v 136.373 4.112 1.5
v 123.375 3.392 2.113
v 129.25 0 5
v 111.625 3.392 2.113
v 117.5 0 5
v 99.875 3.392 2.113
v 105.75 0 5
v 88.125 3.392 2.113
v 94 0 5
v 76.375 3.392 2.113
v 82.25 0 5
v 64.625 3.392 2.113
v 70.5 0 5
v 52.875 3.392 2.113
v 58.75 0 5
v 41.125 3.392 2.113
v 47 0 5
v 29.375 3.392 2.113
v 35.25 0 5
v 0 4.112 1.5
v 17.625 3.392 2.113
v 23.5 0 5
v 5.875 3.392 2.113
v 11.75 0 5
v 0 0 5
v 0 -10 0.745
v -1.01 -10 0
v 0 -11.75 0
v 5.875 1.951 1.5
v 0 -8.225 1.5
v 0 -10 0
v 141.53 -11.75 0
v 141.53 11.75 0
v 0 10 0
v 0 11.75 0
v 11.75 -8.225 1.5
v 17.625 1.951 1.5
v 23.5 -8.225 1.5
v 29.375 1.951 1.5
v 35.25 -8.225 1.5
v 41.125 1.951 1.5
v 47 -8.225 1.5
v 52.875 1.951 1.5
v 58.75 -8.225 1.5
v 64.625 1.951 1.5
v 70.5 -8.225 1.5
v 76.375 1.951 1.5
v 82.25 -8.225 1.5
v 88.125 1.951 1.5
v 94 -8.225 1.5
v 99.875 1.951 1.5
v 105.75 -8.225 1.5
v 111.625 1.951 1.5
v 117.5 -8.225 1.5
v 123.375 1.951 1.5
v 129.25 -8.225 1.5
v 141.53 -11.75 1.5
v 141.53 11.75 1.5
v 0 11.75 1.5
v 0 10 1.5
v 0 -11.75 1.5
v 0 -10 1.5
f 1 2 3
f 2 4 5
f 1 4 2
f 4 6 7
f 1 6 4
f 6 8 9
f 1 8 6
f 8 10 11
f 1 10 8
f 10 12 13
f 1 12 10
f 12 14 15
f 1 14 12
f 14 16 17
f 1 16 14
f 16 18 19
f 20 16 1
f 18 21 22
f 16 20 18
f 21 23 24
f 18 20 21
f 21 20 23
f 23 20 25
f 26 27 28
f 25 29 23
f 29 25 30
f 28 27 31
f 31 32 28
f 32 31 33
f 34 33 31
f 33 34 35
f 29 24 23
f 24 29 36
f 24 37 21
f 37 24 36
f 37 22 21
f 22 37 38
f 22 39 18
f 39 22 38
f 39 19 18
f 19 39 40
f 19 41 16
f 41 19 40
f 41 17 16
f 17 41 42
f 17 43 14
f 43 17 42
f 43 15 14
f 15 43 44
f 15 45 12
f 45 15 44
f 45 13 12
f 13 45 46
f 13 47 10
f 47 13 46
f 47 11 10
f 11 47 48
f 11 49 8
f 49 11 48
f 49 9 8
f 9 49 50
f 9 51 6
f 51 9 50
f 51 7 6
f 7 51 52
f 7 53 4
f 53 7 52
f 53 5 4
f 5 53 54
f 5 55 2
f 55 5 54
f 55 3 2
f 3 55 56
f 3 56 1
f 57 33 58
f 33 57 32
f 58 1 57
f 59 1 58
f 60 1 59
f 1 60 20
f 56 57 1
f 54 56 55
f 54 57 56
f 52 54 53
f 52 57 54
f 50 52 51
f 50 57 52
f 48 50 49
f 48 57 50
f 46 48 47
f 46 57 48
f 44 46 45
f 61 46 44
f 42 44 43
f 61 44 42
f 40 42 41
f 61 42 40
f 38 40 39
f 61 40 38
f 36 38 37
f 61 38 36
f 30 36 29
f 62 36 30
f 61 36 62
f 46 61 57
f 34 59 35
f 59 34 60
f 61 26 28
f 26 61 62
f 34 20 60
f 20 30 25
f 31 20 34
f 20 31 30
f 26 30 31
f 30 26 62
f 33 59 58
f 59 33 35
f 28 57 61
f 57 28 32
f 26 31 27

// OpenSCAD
$r = 23.5/2;
$r2 = 11 / 2;
$d = 1.5;
$fn = 3;
$links = 11;

difference() {
    union() {
        for (i = [0:$links]) {
            translate([i * $r, 0, 2.5]) {
                rotate([0, 0, 30]) {
                    cylinder(5, $r, 0, true);
                }
            }
        }
        translate([0, -$r, 0]) {
           cube([141.53, $r*2 , $d], false);
        }
    }
    translate([-10, 0, 0]) {
        cube([20, 20, 20], true);
    }
    translate([($links) * $r + 10, 0, 0]) {
        //cube([20, 20, 20], true);
    }
}
